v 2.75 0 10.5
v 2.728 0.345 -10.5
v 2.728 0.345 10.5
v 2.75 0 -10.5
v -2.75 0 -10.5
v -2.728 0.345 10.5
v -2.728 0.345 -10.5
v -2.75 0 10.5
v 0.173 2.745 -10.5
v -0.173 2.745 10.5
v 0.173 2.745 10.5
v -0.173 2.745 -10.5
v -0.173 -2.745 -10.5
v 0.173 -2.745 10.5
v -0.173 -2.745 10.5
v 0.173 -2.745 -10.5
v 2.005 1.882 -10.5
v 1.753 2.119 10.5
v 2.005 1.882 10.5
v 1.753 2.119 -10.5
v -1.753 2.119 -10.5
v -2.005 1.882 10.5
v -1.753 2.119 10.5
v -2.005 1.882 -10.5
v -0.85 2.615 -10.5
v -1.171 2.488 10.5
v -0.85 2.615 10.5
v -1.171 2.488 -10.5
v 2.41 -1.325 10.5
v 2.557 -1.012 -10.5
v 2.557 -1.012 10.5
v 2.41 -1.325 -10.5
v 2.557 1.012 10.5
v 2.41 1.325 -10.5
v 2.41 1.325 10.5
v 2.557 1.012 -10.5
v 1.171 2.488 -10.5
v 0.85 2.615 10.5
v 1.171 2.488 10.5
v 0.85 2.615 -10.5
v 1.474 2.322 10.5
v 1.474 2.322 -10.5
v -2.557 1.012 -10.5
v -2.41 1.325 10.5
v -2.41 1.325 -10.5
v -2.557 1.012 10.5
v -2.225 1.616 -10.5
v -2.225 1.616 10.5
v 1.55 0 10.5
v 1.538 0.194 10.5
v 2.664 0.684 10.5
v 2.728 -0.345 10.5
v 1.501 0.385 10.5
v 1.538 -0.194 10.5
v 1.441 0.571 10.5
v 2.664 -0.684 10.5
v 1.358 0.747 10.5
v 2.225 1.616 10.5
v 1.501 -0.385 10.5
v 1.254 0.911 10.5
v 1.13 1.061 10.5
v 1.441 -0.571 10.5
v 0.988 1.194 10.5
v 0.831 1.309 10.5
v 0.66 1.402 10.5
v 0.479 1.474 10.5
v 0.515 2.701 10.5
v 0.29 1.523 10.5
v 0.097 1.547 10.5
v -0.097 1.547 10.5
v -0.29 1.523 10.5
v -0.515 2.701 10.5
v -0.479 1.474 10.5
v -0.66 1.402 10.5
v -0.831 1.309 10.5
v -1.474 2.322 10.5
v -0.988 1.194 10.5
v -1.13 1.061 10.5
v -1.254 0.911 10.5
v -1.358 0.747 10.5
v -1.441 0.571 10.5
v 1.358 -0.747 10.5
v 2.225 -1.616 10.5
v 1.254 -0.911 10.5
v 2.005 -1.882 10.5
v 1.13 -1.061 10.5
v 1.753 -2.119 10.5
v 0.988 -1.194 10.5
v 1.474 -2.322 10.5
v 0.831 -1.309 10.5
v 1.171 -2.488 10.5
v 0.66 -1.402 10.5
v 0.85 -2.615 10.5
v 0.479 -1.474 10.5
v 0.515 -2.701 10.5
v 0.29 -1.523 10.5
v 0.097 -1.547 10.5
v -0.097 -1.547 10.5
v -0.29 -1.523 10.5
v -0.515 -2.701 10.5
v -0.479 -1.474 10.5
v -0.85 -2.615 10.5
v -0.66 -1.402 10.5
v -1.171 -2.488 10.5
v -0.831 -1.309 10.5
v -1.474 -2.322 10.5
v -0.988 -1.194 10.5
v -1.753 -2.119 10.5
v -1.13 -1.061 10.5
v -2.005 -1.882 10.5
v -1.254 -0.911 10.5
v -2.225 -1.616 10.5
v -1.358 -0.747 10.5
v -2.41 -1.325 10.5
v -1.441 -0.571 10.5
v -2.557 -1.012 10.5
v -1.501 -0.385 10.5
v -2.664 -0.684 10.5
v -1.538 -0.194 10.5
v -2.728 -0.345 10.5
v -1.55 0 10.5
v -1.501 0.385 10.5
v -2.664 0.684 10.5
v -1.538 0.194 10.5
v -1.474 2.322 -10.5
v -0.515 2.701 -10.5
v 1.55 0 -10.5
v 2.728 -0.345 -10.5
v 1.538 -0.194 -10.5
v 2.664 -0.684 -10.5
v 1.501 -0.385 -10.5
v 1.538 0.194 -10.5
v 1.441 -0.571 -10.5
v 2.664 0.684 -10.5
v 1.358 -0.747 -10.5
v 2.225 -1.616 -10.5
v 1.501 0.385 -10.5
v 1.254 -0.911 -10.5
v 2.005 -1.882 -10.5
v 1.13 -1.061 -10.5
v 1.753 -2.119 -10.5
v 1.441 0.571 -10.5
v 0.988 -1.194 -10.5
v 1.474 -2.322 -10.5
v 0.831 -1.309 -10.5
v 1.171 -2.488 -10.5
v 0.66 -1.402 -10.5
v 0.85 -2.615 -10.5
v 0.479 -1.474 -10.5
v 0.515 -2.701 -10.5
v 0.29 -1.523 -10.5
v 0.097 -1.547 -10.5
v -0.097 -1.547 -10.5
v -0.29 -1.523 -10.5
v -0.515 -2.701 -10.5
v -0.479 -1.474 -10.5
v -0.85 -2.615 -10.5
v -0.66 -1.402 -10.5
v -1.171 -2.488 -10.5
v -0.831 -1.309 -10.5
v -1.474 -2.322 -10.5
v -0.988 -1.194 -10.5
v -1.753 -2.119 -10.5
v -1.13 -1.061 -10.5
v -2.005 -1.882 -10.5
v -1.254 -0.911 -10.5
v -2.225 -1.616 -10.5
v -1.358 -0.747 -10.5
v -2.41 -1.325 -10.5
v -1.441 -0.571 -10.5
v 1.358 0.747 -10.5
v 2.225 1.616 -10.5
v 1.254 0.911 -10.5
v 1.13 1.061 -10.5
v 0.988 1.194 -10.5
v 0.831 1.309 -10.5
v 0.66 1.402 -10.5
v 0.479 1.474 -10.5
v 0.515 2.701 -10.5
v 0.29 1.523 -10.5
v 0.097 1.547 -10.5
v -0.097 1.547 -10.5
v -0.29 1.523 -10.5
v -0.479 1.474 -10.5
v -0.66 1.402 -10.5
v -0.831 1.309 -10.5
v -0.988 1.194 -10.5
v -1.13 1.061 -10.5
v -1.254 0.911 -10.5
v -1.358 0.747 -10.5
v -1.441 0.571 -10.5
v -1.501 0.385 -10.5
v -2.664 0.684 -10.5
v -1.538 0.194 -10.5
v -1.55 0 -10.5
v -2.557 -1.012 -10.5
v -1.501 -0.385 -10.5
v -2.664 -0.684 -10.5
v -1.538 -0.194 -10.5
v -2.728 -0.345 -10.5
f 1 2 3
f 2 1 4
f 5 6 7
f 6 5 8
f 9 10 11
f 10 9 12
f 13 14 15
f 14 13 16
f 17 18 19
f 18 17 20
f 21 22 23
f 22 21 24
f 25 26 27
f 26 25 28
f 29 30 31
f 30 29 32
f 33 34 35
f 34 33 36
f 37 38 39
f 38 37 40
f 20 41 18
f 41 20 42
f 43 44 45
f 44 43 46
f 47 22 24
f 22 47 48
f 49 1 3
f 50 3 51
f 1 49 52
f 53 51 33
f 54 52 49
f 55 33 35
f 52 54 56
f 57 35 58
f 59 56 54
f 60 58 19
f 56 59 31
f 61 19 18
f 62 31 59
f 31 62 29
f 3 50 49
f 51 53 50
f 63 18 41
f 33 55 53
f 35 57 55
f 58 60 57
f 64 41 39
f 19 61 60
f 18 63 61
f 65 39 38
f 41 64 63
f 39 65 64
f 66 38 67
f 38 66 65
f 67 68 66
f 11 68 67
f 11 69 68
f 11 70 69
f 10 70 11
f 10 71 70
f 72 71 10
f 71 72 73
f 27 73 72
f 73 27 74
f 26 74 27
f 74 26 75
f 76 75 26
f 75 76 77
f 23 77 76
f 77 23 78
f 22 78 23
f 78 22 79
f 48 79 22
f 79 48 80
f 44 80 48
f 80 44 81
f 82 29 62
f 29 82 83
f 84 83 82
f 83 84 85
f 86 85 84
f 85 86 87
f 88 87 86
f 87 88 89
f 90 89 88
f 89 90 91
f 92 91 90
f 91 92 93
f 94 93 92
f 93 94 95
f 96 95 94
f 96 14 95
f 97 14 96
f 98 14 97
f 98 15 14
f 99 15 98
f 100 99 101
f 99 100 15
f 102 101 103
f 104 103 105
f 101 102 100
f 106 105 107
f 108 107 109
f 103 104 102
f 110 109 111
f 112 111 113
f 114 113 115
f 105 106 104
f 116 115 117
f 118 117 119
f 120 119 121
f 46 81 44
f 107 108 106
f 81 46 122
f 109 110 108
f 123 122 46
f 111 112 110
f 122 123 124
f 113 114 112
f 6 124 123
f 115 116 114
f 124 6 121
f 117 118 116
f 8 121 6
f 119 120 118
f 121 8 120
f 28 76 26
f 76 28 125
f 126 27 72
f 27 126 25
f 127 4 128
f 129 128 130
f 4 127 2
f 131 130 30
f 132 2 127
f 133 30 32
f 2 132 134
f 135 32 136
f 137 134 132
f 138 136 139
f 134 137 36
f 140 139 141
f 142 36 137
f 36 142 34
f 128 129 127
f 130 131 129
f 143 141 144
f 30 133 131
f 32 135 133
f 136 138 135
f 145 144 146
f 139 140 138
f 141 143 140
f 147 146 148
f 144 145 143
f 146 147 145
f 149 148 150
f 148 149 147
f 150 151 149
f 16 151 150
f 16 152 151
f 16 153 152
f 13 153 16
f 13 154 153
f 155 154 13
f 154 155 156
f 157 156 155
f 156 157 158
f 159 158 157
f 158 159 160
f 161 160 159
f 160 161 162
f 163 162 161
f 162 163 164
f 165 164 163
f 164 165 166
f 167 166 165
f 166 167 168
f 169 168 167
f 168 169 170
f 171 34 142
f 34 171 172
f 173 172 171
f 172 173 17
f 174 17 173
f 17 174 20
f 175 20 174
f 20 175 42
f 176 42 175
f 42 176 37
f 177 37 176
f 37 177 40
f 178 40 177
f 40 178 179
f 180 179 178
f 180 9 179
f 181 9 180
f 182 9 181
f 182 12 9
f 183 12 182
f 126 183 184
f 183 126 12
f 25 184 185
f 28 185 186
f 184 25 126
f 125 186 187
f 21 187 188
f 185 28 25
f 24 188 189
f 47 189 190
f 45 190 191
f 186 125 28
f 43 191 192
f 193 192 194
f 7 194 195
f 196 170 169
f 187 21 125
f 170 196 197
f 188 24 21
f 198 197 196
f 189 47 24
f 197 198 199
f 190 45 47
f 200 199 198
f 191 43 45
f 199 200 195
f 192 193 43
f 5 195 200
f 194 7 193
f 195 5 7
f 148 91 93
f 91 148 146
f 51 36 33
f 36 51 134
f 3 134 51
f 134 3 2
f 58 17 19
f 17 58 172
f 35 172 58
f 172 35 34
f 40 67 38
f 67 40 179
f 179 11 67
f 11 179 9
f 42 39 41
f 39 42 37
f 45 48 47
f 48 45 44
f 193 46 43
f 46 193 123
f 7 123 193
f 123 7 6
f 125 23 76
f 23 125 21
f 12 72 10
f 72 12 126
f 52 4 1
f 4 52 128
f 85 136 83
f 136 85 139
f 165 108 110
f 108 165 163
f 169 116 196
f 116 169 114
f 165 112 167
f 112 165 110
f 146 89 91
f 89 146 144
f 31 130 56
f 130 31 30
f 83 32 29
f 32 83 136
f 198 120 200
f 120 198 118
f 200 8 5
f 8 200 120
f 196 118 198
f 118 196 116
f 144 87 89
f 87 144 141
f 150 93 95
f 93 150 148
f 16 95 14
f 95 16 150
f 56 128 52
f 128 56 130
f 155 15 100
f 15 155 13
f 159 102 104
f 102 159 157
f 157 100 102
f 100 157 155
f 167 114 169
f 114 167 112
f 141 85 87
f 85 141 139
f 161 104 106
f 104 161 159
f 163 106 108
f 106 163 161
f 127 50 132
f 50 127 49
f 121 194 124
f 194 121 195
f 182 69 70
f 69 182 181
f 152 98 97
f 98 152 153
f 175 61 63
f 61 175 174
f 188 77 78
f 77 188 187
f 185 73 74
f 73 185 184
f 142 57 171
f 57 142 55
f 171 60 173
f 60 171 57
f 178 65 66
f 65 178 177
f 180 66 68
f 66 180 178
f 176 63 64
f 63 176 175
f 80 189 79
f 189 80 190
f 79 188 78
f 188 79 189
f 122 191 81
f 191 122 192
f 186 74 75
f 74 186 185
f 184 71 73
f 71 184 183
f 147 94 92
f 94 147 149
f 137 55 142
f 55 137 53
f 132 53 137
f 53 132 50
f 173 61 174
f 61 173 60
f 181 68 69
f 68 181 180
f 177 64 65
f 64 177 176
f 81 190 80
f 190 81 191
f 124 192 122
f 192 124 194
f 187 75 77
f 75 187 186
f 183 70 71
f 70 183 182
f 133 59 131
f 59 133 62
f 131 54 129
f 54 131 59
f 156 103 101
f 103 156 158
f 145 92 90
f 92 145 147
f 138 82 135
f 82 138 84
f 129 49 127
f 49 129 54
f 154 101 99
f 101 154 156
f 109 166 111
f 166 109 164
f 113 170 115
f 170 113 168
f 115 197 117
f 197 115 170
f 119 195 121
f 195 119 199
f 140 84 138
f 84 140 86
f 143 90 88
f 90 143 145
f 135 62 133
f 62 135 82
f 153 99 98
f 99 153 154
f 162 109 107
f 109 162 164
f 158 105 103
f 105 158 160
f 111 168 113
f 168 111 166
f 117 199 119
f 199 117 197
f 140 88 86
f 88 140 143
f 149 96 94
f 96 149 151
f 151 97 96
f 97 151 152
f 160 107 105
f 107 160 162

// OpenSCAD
$fn = 50;


difference() {
	union() {
		translate(v = [0, 0, -10.5000000000]) {
			cylinder(h = 21, r = 2.7500000000);
		}
	}
	union() {
		translate(v = [0, 0, -100.0000000000]) {
			cylinder(h = 200, r = 1.5500000000);
		}
	}
}
